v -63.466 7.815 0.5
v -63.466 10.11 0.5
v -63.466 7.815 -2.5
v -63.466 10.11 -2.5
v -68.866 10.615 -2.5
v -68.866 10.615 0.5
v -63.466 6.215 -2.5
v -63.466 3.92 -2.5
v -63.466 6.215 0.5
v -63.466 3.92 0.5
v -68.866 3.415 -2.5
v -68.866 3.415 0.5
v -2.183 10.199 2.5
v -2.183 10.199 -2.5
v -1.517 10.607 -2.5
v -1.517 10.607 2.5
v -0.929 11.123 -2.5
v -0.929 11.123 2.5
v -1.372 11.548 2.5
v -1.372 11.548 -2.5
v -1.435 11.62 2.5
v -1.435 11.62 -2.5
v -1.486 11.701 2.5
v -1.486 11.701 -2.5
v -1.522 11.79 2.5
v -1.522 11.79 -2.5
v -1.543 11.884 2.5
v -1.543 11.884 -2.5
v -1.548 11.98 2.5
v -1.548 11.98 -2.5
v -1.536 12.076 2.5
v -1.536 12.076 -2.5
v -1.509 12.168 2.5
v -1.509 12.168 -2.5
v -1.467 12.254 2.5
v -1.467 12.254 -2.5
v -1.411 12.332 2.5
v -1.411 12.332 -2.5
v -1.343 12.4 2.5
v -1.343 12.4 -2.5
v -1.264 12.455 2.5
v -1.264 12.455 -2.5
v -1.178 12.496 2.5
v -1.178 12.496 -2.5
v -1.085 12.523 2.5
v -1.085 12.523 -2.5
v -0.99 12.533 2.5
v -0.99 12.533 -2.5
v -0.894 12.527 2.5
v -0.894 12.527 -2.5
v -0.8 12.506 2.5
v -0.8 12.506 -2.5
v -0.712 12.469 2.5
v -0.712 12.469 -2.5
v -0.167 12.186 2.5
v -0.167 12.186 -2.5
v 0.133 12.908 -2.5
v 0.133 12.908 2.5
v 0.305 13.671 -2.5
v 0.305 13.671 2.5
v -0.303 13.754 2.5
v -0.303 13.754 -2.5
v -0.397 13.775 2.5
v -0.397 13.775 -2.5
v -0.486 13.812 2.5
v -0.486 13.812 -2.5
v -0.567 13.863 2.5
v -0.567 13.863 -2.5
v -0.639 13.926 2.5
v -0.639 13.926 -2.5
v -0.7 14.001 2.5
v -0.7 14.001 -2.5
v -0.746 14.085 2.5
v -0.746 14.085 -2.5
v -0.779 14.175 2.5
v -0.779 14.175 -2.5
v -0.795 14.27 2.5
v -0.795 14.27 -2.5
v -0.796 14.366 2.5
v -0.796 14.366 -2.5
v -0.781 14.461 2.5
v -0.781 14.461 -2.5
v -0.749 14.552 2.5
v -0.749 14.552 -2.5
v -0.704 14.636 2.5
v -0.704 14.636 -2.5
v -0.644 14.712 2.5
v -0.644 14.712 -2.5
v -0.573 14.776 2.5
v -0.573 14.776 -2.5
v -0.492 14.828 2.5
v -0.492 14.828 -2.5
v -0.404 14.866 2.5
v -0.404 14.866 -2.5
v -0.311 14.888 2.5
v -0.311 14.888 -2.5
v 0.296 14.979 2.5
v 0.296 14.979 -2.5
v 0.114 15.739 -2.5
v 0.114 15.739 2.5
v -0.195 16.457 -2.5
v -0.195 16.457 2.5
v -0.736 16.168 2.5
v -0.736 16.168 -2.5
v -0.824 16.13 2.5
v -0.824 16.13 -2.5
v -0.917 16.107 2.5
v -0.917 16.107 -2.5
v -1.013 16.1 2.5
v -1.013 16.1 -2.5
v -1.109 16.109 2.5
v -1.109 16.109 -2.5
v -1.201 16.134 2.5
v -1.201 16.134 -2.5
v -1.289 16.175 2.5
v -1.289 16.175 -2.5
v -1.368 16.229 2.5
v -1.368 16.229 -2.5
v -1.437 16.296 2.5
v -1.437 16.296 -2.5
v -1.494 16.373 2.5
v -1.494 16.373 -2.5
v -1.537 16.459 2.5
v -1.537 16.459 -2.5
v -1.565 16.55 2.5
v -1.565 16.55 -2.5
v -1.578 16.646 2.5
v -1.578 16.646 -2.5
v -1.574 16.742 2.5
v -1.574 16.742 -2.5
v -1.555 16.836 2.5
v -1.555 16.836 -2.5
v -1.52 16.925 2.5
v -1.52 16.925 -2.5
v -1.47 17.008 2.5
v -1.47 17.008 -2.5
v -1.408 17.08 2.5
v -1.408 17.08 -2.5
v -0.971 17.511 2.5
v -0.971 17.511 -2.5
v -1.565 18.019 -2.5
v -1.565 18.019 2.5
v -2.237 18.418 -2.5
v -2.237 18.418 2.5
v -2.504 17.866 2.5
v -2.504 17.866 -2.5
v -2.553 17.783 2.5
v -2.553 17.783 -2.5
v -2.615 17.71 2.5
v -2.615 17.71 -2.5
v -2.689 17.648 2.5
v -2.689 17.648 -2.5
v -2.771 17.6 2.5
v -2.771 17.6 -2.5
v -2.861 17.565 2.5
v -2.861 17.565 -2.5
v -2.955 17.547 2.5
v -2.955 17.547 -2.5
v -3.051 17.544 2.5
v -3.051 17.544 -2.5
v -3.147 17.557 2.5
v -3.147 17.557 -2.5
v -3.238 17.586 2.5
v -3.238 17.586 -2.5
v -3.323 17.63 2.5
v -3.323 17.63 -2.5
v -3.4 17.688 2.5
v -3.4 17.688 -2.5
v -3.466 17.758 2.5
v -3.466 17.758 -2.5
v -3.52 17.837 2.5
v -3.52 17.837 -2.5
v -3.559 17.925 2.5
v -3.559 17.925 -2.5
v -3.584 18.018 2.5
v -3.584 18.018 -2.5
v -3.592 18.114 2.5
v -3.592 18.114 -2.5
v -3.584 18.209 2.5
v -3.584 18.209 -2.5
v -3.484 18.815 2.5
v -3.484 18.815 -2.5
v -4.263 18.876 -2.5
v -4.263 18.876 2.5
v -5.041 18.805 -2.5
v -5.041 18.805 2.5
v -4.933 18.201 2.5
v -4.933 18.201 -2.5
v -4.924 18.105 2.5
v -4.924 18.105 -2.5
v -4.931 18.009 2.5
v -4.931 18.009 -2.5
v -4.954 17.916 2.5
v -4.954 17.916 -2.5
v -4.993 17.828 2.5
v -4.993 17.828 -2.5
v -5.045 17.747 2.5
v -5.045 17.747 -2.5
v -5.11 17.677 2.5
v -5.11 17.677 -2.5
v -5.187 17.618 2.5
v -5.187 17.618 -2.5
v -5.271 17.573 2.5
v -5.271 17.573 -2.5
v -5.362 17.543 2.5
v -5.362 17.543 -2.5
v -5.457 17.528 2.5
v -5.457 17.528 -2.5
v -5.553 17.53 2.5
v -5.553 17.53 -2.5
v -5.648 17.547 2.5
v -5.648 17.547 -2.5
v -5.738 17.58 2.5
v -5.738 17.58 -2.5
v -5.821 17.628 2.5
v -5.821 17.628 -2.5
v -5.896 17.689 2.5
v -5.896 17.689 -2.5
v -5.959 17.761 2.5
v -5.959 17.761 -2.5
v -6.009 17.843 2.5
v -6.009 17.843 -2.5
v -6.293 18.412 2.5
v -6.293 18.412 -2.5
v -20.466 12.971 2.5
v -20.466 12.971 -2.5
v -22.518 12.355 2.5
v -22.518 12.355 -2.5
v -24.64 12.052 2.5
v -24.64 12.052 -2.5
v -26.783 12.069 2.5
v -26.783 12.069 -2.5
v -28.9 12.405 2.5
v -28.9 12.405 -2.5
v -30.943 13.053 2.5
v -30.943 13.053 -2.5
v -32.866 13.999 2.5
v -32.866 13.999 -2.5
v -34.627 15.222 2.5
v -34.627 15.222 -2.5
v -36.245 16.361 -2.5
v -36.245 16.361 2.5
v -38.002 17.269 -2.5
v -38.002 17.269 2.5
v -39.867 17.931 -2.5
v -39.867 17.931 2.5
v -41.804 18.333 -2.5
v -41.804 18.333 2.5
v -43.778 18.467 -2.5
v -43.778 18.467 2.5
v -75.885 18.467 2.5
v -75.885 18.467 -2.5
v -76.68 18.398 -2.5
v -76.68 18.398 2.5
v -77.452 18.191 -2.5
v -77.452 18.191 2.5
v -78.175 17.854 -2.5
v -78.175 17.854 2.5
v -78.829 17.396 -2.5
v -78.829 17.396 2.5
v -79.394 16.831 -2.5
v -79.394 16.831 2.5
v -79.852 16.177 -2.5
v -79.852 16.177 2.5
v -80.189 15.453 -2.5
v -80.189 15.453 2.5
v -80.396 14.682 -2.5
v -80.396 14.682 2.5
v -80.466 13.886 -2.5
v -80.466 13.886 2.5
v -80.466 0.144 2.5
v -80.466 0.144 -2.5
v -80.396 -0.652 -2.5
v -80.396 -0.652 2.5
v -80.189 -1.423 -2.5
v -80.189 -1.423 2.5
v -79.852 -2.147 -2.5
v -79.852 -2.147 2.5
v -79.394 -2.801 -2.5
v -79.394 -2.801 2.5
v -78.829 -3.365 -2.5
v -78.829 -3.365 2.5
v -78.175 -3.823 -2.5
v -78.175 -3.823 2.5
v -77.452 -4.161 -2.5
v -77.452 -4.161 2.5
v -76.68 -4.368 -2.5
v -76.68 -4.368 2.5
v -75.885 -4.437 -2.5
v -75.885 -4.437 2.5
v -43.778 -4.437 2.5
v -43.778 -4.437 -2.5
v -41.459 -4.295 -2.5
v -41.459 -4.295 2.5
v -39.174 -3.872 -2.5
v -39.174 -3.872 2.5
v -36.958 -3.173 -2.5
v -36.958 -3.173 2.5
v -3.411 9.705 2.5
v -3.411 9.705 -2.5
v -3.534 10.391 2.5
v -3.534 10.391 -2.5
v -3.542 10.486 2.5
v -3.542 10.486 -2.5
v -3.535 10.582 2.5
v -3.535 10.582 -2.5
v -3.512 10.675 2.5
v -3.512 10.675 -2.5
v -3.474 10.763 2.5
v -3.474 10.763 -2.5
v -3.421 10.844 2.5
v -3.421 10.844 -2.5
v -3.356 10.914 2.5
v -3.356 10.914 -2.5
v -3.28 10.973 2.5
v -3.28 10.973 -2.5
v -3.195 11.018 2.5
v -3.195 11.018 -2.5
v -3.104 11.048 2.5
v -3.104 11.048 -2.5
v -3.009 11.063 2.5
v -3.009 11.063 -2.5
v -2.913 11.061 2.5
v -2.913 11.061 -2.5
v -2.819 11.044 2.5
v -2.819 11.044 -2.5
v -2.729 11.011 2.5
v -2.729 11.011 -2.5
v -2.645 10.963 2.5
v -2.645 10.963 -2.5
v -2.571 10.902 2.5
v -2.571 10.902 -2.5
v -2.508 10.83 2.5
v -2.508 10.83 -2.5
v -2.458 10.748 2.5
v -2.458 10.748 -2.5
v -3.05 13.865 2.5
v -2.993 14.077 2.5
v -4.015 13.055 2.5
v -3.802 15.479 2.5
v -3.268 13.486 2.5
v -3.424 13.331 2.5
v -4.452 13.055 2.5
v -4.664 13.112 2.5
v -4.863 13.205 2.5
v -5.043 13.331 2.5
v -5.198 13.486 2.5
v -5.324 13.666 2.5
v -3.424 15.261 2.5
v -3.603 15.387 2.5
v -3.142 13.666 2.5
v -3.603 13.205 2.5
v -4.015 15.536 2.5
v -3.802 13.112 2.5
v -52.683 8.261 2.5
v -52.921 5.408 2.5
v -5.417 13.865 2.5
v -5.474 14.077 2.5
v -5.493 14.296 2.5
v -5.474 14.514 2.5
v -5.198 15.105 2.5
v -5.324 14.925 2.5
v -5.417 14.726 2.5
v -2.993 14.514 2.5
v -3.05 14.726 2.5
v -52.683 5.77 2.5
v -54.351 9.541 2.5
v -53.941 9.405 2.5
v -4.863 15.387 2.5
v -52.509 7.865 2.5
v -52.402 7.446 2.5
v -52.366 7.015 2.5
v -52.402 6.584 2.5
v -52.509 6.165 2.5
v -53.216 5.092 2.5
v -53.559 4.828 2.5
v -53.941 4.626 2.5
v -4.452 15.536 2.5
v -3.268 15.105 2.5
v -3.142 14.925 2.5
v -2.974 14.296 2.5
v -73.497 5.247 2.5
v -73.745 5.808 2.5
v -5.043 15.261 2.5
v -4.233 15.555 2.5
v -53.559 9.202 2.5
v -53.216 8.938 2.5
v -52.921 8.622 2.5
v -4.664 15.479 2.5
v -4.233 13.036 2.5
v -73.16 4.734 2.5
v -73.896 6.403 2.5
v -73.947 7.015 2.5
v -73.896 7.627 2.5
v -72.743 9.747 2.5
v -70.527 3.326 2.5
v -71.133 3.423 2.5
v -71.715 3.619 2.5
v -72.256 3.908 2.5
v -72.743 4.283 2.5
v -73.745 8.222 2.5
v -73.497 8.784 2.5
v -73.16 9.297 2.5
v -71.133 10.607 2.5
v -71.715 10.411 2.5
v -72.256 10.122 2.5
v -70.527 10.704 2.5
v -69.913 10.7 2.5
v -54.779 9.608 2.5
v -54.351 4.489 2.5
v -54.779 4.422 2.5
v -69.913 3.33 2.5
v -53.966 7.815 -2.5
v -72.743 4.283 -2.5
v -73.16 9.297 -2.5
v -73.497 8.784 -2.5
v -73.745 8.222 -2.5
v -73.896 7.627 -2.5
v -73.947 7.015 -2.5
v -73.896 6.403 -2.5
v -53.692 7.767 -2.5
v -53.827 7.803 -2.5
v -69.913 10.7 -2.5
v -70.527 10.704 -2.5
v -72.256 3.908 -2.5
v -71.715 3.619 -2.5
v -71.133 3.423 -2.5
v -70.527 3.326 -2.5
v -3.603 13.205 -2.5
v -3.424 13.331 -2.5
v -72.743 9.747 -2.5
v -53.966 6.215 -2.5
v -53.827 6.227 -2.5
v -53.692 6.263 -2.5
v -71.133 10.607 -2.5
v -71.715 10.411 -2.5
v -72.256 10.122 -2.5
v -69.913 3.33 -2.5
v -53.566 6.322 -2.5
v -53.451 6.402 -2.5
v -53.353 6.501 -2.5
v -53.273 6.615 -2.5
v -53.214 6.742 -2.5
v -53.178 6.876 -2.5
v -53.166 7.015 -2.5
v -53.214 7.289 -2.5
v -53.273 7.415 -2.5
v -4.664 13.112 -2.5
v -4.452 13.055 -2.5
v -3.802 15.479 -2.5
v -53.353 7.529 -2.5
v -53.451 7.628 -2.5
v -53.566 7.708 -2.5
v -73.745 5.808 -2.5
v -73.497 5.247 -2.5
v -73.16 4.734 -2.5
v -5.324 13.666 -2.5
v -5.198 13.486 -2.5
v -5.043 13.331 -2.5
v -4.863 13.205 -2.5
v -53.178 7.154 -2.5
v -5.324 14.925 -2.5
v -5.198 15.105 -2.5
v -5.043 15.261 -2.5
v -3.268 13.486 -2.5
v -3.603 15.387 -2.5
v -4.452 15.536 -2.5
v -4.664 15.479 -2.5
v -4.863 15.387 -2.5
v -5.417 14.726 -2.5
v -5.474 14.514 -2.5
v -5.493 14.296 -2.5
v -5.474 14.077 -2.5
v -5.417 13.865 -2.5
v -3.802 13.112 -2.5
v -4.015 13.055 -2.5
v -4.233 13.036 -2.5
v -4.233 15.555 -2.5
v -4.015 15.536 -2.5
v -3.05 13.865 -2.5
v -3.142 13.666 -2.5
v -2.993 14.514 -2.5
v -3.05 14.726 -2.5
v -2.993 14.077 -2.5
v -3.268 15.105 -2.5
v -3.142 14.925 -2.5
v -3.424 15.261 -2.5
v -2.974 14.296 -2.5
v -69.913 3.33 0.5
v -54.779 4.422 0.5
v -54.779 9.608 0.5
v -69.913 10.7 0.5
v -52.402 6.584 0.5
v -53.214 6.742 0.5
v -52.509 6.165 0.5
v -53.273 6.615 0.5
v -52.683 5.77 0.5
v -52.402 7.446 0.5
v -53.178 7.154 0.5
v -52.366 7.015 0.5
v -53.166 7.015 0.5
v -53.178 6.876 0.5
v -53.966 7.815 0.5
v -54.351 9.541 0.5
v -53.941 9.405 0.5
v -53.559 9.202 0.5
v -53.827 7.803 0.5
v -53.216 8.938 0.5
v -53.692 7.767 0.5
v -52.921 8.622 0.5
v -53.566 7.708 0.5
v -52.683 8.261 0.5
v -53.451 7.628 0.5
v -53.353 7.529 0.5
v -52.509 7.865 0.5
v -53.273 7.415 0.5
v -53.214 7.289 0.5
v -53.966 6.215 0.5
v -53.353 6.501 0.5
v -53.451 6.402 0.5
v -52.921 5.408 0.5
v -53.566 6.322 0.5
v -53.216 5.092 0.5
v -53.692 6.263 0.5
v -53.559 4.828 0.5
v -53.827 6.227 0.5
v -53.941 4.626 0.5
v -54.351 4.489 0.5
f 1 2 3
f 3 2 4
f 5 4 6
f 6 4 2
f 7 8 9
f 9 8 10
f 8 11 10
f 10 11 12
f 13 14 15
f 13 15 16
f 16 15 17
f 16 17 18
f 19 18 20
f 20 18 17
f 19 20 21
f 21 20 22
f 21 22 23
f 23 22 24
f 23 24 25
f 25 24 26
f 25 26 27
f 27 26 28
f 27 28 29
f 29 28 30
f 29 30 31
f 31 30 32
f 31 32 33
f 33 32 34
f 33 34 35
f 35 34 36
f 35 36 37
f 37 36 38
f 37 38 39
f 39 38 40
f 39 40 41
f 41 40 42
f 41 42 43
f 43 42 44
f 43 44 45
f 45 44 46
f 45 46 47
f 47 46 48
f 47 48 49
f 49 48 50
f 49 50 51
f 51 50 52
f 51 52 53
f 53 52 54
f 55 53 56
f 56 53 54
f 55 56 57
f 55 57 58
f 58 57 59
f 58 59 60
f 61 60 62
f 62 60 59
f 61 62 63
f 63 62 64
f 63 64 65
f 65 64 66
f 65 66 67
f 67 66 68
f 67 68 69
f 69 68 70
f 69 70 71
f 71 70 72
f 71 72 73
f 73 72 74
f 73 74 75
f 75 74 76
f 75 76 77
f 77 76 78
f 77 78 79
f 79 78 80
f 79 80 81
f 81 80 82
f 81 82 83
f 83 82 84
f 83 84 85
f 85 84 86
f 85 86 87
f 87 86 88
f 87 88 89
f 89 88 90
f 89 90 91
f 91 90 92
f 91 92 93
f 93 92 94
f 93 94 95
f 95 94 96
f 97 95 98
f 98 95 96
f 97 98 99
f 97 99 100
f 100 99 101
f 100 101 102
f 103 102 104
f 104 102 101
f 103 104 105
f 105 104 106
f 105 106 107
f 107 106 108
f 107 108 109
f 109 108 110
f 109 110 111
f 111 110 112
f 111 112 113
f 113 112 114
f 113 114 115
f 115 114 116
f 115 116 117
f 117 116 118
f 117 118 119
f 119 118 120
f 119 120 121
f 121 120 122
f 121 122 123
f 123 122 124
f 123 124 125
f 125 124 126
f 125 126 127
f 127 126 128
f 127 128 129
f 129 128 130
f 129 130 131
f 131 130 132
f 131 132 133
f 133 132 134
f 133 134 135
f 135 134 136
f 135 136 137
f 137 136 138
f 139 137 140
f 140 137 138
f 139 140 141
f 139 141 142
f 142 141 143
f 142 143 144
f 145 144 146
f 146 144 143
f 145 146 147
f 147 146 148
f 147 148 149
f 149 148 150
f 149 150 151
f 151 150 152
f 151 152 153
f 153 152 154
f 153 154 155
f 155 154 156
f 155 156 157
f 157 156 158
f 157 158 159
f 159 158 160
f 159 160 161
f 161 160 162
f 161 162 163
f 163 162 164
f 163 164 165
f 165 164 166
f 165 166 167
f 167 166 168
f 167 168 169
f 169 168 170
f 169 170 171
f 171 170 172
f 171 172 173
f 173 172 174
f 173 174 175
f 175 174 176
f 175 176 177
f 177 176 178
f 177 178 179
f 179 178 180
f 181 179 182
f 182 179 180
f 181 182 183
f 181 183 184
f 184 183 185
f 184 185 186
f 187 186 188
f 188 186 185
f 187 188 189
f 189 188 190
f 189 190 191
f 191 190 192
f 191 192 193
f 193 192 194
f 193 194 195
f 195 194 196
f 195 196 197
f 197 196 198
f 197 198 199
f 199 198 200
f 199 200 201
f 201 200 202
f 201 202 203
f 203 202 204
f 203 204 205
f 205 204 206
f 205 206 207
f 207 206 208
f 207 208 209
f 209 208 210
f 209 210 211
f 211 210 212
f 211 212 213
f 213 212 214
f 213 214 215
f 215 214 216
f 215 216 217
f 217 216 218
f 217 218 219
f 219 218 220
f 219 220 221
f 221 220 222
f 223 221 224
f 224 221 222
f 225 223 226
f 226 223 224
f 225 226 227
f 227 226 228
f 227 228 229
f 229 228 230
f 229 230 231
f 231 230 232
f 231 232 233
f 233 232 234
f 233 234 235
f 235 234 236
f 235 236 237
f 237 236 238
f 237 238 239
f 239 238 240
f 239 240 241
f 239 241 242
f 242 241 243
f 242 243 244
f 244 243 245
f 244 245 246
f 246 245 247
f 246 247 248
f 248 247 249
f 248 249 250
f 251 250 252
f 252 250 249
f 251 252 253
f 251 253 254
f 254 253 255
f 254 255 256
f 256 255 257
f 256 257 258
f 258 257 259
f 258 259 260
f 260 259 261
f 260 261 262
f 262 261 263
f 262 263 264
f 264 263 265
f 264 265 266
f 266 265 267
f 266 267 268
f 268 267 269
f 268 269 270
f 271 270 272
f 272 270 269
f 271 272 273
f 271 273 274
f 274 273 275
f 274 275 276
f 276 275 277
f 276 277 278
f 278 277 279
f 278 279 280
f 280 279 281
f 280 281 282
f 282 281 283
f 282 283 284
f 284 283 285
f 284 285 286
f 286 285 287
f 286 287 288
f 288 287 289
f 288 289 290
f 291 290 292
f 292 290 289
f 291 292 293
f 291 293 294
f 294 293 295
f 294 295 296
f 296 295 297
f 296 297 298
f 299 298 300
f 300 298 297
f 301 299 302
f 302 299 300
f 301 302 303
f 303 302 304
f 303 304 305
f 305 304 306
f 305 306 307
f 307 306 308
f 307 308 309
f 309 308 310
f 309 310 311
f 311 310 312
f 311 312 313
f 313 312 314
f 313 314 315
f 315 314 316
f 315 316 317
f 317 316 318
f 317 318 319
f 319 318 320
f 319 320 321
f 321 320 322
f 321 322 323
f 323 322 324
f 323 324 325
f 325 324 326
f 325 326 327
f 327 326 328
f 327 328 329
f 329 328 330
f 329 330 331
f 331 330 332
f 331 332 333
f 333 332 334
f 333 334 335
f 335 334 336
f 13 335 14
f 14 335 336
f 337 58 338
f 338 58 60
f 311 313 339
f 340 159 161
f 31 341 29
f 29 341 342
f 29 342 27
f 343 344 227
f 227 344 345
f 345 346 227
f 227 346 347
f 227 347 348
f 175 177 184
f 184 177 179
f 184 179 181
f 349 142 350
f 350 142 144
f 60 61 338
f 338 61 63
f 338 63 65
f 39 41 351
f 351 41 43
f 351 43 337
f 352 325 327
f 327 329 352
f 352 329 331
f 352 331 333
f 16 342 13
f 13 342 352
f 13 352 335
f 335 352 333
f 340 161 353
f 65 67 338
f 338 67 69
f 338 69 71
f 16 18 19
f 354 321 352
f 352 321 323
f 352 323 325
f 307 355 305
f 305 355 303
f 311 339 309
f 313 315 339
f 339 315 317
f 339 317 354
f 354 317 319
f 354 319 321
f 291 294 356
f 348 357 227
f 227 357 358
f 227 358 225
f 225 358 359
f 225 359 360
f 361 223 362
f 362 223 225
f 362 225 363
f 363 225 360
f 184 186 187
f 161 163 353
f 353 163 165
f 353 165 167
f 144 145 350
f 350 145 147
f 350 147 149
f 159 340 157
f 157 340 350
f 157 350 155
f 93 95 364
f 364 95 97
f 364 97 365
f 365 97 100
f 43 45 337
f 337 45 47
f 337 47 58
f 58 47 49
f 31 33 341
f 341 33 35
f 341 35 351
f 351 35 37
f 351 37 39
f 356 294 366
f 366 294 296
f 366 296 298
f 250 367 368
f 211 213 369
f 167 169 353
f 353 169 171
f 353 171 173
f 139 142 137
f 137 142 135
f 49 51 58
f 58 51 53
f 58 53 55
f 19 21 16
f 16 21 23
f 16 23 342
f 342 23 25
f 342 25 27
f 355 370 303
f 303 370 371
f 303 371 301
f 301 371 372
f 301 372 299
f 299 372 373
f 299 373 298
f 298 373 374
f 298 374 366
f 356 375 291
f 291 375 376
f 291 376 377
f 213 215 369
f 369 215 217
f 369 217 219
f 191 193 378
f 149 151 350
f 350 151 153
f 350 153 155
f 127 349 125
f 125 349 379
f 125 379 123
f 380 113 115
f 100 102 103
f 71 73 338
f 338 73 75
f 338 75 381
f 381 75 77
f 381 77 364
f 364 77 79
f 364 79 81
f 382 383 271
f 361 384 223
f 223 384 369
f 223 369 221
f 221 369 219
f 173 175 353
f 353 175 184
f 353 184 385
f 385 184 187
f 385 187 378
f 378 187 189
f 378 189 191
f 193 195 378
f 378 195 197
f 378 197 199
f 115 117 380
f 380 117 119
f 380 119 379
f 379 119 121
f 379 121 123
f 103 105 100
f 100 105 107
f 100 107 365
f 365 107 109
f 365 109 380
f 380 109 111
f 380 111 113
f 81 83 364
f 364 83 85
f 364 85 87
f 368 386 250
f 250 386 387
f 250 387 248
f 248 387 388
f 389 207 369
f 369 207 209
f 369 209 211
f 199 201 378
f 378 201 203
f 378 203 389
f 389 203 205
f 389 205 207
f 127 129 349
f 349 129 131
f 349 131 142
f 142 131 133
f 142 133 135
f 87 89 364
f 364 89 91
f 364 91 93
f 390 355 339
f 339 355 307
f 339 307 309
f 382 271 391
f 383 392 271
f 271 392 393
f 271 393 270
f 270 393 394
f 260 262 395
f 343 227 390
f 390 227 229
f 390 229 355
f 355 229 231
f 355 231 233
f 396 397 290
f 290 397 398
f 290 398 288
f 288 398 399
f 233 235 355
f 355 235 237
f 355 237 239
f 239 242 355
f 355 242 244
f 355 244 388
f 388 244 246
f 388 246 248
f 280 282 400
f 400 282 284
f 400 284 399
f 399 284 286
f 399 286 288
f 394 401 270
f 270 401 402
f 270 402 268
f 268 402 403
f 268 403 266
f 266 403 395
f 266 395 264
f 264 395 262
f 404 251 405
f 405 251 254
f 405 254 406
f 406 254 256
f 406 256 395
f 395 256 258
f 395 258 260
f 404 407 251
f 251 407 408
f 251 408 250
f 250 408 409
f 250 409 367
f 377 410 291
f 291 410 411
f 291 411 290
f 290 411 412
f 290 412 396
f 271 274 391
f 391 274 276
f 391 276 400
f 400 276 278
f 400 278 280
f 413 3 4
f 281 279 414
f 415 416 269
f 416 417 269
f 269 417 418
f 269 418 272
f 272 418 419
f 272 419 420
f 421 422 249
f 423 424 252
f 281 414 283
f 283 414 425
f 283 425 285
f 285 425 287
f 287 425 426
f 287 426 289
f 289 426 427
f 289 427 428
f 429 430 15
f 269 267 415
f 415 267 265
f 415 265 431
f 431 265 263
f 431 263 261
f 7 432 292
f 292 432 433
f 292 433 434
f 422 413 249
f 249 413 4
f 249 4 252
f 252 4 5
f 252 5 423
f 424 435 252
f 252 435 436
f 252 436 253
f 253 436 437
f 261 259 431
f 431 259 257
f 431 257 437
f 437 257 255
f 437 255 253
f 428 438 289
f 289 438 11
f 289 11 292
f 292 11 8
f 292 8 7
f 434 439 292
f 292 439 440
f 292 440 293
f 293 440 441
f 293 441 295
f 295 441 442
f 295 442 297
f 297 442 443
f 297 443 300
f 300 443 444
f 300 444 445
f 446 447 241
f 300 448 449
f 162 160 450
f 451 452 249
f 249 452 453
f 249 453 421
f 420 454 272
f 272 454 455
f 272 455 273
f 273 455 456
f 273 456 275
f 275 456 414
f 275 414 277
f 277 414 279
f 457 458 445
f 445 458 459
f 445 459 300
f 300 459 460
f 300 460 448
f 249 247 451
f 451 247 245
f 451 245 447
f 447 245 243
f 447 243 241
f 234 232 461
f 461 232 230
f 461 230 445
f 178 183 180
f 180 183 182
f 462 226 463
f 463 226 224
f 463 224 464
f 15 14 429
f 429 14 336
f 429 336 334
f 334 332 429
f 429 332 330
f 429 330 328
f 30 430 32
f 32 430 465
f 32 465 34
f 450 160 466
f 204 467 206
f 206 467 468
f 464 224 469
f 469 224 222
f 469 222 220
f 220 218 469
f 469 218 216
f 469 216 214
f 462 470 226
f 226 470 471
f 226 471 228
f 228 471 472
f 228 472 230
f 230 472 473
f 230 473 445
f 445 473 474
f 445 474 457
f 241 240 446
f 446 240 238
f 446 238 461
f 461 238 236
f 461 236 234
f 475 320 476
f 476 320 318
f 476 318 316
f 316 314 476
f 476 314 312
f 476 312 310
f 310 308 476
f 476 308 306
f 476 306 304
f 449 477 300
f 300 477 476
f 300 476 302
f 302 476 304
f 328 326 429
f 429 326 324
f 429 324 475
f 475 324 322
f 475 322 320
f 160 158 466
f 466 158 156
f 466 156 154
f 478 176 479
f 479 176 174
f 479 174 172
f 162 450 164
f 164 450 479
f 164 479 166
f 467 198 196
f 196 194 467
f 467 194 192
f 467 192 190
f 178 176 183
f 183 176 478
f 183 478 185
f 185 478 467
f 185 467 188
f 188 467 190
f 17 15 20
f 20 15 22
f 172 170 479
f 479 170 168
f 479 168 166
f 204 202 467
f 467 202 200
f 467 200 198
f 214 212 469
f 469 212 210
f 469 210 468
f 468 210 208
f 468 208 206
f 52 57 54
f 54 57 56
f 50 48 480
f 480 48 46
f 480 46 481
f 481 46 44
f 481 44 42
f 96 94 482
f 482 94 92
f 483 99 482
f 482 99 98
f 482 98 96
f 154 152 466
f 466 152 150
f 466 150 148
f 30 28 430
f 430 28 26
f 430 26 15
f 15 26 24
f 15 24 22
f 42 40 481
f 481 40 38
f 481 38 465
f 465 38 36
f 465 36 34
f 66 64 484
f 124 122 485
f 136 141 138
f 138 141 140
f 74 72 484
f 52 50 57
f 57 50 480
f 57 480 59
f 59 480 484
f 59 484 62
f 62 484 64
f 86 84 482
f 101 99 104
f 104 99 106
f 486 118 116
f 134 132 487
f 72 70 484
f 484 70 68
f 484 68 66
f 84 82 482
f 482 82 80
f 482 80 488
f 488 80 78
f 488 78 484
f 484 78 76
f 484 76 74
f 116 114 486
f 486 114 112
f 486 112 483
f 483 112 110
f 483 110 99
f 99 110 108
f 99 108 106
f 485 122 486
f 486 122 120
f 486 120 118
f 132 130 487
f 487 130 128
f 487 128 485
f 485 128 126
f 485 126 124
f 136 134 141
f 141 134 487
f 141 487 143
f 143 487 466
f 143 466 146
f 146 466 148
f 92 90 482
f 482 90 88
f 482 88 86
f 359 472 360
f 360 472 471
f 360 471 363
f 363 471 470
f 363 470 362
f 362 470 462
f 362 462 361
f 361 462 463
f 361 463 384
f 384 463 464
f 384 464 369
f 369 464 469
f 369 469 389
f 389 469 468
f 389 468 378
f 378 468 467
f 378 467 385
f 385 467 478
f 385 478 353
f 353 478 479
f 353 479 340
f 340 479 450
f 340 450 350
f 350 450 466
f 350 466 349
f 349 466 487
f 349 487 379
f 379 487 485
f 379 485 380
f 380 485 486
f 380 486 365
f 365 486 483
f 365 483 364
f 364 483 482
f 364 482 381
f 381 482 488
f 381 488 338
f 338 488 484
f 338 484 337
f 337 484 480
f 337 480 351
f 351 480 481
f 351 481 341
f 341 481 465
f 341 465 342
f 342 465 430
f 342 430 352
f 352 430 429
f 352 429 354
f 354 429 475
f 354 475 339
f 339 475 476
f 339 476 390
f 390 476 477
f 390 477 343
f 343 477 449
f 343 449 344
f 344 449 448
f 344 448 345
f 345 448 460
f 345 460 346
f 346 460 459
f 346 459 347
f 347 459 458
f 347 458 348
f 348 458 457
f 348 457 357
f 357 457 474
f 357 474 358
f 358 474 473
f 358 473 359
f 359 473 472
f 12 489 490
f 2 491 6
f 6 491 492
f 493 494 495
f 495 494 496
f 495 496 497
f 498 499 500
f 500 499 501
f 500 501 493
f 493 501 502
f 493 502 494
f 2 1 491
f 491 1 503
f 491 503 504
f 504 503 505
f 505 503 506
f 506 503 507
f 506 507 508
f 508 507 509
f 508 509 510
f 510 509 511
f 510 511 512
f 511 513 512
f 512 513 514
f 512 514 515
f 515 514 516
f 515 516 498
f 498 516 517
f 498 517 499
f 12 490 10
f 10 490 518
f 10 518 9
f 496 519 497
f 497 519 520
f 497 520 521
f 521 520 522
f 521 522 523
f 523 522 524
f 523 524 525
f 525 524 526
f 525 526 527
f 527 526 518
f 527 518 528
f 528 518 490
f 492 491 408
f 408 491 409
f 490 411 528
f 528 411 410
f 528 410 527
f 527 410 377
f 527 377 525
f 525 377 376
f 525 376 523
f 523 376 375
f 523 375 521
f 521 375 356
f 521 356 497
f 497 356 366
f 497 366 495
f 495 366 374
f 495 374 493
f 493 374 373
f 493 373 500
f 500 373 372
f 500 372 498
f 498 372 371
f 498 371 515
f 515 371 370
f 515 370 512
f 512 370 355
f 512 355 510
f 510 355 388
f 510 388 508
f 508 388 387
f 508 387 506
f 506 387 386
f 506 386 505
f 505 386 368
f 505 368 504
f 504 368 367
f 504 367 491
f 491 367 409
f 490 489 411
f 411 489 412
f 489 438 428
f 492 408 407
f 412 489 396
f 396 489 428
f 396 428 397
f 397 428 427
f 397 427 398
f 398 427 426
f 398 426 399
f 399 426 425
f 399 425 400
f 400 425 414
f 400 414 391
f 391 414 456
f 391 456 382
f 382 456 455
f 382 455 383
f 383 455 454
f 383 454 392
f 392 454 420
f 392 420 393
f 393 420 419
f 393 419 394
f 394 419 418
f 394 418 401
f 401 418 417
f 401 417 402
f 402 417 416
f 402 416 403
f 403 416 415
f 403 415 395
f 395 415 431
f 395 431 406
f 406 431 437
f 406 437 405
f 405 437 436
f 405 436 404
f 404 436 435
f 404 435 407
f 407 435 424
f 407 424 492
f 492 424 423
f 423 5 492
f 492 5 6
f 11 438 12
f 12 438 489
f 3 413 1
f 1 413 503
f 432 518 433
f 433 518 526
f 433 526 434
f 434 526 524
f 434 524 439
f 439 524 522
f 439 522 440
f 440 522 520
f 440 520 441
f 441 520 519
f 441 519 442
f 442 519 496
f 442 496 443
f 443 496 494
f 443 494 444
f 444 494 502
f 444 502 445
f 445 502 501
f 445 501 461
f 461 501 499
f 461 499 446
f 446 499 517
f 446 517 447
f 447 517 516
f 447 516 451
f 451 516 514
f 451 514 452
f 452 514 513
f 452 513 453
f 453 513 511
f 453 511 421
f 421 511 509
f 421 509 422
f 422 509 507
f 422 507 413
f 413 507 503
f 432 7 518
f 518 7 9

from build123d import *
from build123d.topology import SkipClean

# Parameters (mm, degrees)
CROQUIS1_R              = 1.717841821
CROQUIS1_R_2            = 1.259750669
CROQUIS1_W              = 27.485469141
CROQUIS1_H              = 14.887962451
SALIENTE_EXTRUIR1_DEPTH = 5
SALIENTE_EXTRUIR2_START = -5
SALIENTE_EXTRUIR2_DEPTH = 5
CORTAR_EXTRUIR1_DEPTH   = 5
CORTAR_EXTRUIR2_DEPTH   = 2
CUT_EXTRUDE2_DEPTH      = 83.704538261
CUT_EXTRUDE5_DEPTH      = 83.704538261


with BuildPart() as part:
    # Croquis1 → Saliente-Extruir1 (new body)
    with BuildSketch(Plane(origin=(0, 0, -2.5), x_dir=(-1, 0, 0), z_dir=(0, 0, -1))):
        with BuildLine():
            Line((2.183126414, 10.199004786), (2.457799007, 10.747834714))
            ThreePointArc((2.457799007, 10.747834714), (3.150356623, 11.03498533), (3.533498829, 10.390552574))
            Line((3.533498829, 10.390552574), (3.410556906, 9.704532228))
            Line((3.410556906, 9.704532228), (36.957948904, -3.17310503))
            ThreePointArc((36.957948904, -3.17310503), (40.309989238, -4.118478177), (43.778179918, -4.437160132))
            Line((43.778179918, -4.437160132), (75.884737747, -4.437160132))
            ThreePointArc((75.884737747, -4.437160132), (79.123931349, -3.095442211), (80.46564927, 0.143751392))
            Line((80.46564927, 0.143751392), (80.46564927, 13.886485962))
            ThreePointArc((80.46564927, 13.886485962), (79.123931349, 17.125679564), (75.884737747, 18.467397485))
            Line((75.884737747, 18.467397485), (43.778179918, 18.467397485))
            ThreePointArc((43.778179918, 18.467397485), (38.923372817, 17.631925595), (34.62713443, 15.221634951))
            ThreePointArc((34.62713443, 15.221634951), (27.84817952, 12.197288027), (20.46564927, 12.971336544))
            Line((20.46564927, 12.971336544), (6.293279019, 18.411599775))
            Line((6.293279019, 18.411599775), (6.008822105, 17.843219559))
            ThreePointArc((6.008822105, 17.843219559), (5.316264489, 17.556068943), (4.933122282, 18.200501699))
            Line((4.933122282, 18.200501699), (5.041383533, 18.804603367))
            ThreePointArc((5.041383533, 18.804603367), (4.263160644, 18.876341405), (3.484068945, 18.814751339))
            Line((3.484068945, 18.814751339), (3.584448287, 18.209290101))
            ThreePointArc((3.584448287, 18.209290101), (3.192940304, 17.56990522), (2.504183677, 17.866056933))
            Line((2.504183677, 17.866056933), (2.236686818, 18.418419815))
            ThreePointArc((2.236686818, 18.418419815), (1.564924714, 18.019029169), (0.970828021, 17.511263148))
            Line((0.970828021, 17.511263148), (1.407917802, 17.080436215))
            ThreePointArc((1.407917802, 17.080436215), (1.467002194, 16.333040361), (0.735712768, 16.167791142))
            Line((0.735712768, 16.167791142), (0.194632507, 16.457431391))
            ThreePointArc((0.194632507, 16.457431391), (-0.114078519, 15.739465714), (-0.296255461, 14.9794731))
            Line((-0.296255461, 14.9794731), (0.310591317, 14.887841716))
            ThreePointArc((0.310591317, 14.887841716), (0.797699855, 14.317914702), (0.303205335, 13.754384137))
            Line((0.303205335, 13.754384137), (-0.304784058, 13.670669023))
            ThreePointArc((-0.304784058, 13.670669023), (-0.132526888, 12.9083668), (0.16680132, 12.18643894))
            Line((0.16680132, 12.18643894), (0.711610253, 12.469003179))
            ThreePointArc((0.711610253, 12.469003179), (1.440684032, 12.294237755), (1.371864517, 11.547675365))
            Line((1.371864517, 11.547675365), (0.929197275, 11.122581216))
            ThreePointArc((0.929197275, 11.122581216), (1.516626257, 10.607115987), (2.183126414, 10.199004786))
        make_face()
        with Locations(Location((46.05155145, 7.015118677, 0), (0, 0, 180))):
            Circle(CROQUIS1_R, mode=Mode.SUBTRACT)
        with Locations(Location((77.659840962, 7.015118677, 0), (0, 0, 180))):
            Circle(CROQUIS1_R, mode=Mode.SUBTRACT)
        with Locations(Location((4.233310556, 14.295527136, 0), (0, 0, 180))):
            Circle(CROQUIS1_R_2, mode=Mode.SUBTRACT)
        with Locations((61.855696206, 7.015118677)):
            Rectangle(CROQUIS1_W, CROQUIS1_H, mode=Mode.SUBTRACT)
    extrude(amount=-SALIENTE_EXTRUIR1_DEPTH)

    # Croquis2 → Saliente-Extruir2 (add)
    with BuildSketch(Plane.XY.offset(2.5).offset(SALIENTE_EXTRUIR2_START)):
        with BuildLine():
            Line((-43.778179918, -4.437160132), (-75.884737747, -4.437160132))
            ThreePointArc((-75.884737747, -4.437160132), (-79.123931349, -3.095442211), (-80.46564927, 0.143751392))
            Line((-80.46564927, 0.143751392), (-80.46564927, 13.886485962))
            ThreePointArc((-80.46564927, 13.886485962), (-79.123931349, 17.125679564), (-75.884737747, 18.467397485))
            Line((-75.884737747, 18.467397485), (-43.778179918, 18.467397485))
            Line((-43.778179918, 18.467397485), (-43.778179918, -4.437160132))
        make_face()
    extrude(amount=SALIENTE_EXTRUIR2_DEPTH)

    # Croquis3 → Cortar-Extruir1 (cut)
    with BuildSketch(Plane.XY.offset(2.5)):
        with BuildLine():
            Line((-68.86564927, 10.615118677), (-63.46564927, 10.110118677))
            Line((-63.46564927, 10.110118677), (-63.46564927, 3.920118677))
            Line((-63.46564927, 3.920118677), (-68.86564927, 3.415118677))
            ThreePointArc((-68.86564927, 3.415118677), (-72.46564927, 7.015118677), (-68.86564927, 10.615118677))
        make_face()
    extrude(amount=-CORTAR_EXTRUIR1_DEPTH, mode=Mode.SUBTRACT)

    # Croquis4 → Cortar-Extruir2 (cut)
    with BuildSketch(Plane.XY.offset(2.5)):
        with BuildLine():
            Line((-54.77859891, 9.608381518), (-69.913267682, 10.700035319))
            ThreePointArc((-69.913267682, 10.700035319), (-73.947018097, 7.015118677), (-69.913267682, 3.330202034))
            Line((-69.913267682, 3.330202034), (-54.77859891, 4.421855836))
            ThreePointArc((-54.77859891, 4.421855836), (-52.36564927, 7.015118677), (-54.77859891, 9.608381518))
        make_face()
    extrude(amount=-CORTAR_EXTRUIR2_DEPTH, mode=Mode.SUBTRACT)

    # Sketch2 → Cut-Extrude2 (cut, through all)
    with SkipClean():  # the faces are left unmerged after this step: merging them gives an invalid solid
        with BuildSketch(Plane.XY.offset(0.5)):
            with BuildLine():
                Line((-69.913267682, 10.700035319), (-68.86564927, 10.615118677))
                ThreePointArc((-68.86564927, 10.615118677), (-72.46564927, 7.015118677), (-68.86564927, 3.415118677))
                Line((-68.86564927, 3.415118677), (-69.913267682, 3.330202034))
                ThreePointArc((-69.913267682, 3.330202034), (-73.947018097, 7.015118677), (-69.913267682, 10.700035319))
            make_face()
        extrude(amount=-CUT_EXTRUDE2_DEPTH, mode=Mode.SUBTRACT)

    # Sketch5 → Cut-Extrude5 (cut, through all)
    with SkipClean():  # the faces are left unmerged after this step: merging them gives an invalid solid
        with BuildSketch(Plane.XY.offset(0.5)):
            with BuildLine():
                Line((-63.46564927, 7.815118677), (-53.96564927, 7.815118677))
                ThreePointArc((-53.96564927, 7.815118677), (-53.16564927, 7.015118677), (-53.96564927, 6.215118677))
                Line((-53.96564927, 6.215118677), (-63.46564927, 6.215118677))
                Line((-63.46564927, 6.215118677), (-63.46564927, 7.815118677))
            make_face()
        extrude(amount=-CUT_EXTRUDE5_DEPTH, mode=Mode.SUBTRACT)


solid = part.part
